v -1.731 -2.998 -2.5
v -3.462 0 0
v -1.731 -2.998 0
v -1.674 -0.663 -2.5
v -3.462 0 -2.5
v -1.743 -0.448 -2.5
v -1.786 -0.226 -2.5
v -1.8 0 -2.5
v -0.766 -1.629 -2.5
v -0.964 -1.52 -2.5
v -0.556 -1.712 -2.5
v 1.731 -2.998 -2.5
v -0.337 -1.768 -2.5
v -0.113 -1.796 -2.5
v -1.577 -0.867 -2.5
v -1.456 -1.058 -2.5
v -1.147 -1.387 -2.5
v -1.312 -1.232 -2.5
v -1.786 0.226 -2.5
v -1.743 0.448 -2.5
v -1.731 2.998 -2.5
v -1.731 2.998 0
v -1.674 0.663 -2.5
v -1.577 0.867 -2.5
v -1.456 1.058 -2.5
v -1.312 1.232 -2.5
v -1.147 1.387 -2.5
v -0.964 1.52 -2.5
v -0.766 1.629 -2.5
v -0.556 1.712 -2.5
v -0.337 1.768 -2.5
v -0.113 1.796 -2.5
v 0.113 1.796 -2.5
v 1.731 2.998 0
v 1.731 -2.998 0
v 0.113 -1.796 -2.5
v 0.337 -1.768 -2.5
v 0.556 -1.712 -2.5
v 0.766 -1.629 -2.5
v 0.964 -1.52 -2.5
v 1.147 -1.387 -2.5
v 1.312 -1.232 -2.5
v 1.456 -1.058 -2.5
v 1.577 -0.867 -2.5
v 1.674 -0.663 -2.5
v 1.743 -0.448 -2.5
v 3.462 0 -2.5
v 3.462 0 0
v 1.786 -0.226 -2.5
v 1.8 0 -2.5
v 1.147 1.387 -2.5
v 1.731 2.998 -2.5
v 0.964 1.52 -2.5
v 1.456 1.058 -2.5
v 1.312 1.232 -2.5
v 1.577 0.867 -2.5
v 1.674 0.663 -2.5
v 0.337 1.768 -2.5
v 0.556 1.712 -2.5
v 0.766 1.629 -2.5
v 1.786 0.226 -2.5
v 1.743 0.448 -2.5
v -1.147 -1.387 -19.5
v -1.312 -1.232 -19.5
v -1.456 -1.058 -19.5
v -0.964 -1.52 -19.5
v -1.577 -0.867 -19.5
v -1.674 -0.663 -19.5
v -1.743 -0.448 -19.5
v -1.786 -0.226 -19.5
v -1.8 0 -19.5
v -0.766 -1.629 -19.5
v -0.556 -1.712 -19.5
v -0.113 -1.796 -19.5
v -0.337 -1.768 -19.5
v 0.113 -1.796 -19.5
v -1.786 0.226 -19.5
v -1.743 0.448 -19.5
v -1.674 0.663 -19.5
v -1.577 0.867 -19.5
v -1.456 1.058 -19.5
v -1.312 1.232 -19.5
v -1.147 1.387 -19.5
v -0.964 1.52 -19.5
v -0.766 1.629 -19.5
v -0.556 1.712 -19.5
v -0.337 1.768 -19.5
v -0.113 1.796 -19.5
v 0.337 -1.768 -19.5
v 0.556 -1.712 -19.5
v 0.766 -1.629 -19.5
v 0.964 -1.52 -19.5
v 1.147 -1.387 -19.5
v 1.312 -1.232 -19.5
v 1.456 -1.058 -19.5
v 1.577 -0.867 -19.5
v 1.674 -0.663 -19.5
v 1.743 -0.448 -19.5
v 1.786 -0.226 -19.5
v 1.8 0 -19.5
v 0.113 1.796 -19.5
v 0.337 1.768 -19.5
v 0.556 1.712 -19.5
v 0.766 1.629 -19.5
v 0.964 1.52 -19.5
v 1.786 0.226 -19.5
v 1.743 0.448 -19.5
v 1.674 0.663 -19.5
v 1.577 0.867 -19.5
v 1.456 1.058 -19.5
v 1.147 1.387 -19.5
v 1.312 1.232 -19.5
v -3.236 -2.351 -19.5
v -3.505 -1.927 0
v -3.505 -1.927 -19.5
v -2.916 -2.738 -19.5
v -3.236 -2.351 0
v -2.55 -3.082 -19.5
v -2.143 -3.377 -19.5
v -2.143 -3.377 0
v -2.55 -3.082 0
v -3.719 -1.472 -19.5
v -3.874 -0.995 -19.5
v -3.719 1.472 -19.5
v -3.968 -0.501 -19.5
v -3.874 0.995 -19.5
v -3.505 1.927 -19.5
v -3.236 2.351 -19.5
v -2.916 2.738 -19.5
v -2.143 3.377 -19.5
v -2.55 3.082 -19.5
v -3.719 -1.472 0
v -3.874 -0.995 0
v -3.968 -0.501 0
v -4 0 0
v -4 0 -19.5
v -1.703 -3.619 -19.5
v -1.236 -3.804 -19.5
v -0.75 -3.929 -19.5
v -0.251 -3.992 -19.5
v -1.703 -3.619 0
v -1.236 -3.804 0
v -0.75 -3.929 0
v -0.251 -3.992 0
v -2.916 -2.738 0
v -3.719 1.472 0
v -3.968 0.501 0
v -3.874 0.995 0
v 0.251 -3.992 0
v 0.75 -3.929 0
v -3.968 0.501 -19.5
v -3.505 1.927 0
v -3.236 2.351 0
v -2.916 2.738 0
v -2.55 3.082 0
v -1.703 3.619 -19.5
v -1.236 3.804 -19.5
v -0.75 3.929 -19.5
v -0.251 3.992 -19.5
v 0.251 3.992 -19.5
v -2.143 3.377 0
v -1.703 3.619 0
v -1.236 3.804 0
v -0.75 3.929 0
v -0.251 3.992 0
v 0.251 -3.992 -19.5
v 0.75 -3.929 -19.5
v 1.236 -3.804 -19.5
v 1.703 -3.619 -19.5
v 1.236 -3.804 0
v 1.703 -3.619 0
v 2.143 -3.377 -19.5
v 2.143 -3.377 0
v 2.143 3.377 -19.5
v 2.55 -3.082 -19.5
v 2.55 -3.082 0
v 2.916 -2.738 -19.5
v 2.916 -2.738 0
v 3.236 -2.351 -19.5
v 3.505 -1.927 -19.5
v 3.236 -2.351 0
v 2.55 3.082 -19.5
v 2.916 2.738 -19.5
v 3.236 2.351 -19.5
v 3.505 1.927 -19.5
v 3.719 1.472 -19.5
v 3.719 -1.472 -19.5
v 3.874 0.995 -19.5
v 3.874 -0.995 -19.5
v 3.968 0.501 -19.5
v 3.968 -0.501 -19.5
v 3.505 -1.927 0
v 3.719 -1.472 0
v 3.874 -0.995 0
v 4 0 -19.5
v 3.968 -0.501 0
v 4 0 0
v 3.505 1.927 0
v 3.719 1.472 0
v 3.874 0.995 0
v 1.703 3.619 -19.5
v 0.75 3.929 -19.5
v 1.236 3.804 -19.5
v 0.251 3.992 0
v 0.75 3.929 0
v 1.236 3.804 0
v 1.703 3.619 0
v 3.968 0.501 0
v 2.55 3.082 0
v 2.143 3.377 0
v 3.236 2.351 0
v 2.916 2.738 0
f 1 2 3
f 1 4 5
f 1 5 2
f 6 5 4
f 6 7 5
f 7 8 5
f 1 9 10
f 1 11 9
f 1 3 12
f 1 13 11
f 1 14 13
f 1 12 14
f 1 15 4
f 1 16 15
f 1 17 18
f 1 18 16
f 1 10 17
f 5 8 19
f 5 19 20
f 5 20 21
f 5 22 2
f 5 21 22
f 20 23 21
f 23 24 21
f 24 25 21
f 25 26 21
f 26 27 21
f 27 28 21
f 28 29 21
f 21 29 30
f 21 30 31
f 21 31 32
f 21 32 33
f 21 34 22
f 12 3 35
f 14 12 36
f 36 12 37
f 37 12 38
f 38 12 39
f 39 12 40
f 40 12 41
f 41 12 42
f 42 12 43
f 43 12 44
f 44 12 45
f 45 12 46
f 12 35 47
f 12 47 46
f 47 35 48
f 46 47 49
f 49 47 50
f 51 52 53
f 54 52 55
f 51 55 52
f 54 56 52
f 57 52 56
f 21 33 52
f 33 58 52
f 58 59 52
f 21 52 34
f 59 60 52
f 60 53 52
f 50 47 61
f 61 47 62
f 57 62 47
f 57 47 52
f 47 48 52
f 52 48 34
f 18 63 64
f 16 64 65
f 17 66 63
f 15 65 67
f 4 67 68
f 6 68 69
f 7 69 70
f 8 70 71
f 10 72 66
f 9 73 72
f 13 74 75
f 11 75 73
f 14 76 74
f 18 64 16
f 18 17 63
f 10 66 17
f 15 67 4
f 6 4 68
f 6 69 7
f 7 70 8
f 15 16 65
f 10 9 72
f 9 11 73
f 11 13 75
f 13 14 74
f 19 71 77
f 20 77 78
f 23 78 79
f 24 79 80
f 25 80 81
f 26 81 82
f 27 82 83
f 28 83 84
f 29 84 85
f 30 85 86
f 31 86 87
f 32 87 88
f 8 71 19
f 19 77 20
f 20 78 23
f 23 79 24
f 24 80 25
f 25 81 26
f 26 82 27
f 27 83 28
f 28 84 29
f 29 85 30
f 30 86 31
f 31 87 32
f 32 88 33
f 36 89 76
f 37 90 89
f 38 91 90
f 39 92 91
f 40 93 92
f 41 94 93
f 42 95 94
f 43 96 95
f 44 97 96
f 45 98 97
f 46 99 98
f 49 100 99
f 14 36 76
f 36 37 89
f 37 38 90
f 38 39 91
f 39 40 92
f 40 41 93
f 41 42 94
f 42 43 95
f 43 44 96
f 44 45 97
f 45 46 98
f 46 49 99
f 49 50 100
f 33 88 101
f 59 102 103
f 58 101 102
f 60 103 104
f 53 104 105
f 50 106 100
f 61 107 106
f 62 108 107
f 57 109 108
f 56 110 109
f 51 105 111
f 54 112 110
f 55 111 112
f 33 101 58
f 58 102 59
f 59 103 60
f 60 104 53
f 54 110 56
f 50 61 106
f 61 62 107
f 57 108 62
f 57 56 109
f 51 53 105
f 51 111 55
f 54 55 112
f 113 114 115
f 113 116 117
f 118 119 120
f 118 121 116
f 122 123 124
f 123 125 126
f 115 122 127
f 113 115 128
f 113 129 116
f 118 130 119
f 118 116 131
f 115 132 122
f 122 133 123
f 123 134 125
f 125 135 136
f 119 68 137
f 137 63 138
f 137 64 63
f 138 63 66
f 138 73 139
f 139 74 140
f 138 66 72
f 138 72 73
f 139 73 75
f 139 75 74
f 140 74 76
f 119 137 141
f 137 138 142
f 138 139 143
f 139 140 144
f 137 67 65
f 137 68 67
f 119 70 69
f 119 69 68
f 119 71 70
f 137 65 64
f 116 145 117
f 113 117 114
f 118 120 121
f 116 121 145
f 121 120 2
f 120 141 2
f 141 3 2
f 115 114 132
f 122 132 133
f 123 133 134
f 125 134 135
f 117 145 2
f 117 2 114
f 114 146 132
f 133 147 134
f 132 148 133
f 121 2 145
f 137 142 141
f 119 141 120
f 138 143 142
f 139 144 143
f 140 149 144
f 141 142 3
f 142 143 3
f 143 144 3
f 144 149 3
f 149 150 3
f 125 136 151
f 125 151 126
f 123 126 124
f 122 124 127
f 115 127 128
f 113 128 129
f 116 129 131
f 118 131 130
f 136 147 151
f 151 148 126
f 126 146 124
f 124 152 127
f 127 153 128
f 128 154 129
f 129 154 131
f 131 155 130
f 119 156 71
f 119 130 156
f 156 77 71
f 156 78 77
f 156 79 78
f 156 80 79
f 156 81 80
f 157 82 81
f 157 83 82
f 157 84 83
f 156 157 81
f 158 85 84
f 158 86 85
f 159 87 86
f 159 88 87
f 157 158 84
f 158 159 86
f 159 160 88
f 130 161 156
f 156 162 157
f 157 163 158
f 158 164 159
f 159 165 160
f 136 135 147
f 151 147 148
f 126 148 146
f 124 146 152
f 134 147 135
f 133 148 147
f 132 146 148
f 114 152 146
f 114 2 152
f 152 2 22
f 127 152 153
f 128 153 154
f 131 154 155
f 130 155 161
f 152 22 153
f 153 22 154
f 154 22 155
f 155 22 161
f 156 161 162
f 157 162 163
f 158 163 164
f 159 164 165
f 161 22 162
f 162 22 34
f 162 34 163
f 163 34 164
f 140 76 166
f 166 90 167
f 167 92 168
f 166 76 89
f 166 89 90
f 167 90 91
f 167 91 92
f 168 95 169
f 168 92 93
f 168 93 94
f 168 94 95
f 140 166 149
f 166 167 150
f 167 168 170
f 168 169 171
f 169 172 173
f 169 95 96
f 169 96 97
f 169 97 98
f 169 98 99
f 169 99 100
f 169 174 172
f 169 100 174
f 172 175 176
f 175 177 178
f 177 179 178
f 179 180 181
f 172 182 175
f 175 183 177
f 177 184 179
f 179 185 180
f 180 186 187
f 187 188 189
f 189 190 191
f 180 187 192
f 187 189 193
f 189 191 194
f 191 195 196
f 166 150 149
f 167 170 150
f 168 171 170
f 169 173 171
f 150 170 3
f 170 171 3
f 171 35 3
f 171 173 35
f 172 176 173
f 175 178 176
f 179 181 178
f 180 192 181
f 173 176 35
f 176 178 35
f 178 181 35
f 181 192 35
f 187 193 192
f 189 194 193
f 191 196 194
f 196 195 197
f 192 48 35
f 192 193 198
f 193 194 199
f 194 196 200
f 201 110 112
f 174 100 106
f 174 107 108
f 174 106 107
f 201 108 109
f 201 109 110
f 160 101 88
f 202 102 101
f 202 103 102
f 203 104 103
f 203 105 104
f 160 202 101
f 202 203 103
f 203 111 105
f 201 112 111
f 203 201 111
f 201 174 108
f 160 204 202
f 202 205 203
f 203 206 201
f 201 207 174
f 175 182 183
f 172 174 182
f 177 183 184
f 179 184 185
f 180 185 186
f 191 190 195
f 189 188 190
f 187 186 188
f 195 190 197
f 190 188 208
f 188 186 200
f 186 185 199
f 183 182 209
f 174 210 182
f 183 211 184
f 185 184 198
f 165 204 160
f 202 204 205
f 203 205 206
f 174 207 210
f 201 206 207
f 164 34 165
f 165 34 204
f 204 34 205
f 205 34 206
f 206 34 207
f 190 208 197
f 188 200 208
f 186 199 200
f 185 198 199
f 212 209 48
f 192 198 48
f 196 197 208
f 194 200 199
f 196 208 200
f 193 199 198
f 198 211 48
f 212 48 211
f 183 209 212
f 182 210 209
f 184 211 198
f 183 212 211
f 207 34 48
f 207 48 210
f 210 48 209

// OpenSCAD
$fn = 50;

difference() {
	union() {
		translate(v = [0, 0, -19.5]) {
			cylinder(h = 22.5, r = 4.0);
		}
	}
	union() {
		translate(v = [0, 0, 0]) {
			rotate(a = [0, 0, 0]) {
				difference() {
					union() {
						translate(v = [0, 0, -2.5]) {
							linear_extrude(height = 2.5) {
								polygon(points = [[3.4619999999999997, 0.0], [1.7310000000000003, 2.9981799479017264], [-1.7309999999999992, 2.9981799479017264], [-3.4619999999999997, 4.2397272186481365e-16], [-1.7310000000000014, -2.998179947901726], [1.7309999999999977, -2.9981799479017277]]);
							}
						}
					}
					union();
				}
			}
		}
		#cylinder(h = 3, r = 5.0);
		#translate(v = [0, 0, -100.0]) {
			cylinder(h = 200, r = 1.8);
		}
	}
}
